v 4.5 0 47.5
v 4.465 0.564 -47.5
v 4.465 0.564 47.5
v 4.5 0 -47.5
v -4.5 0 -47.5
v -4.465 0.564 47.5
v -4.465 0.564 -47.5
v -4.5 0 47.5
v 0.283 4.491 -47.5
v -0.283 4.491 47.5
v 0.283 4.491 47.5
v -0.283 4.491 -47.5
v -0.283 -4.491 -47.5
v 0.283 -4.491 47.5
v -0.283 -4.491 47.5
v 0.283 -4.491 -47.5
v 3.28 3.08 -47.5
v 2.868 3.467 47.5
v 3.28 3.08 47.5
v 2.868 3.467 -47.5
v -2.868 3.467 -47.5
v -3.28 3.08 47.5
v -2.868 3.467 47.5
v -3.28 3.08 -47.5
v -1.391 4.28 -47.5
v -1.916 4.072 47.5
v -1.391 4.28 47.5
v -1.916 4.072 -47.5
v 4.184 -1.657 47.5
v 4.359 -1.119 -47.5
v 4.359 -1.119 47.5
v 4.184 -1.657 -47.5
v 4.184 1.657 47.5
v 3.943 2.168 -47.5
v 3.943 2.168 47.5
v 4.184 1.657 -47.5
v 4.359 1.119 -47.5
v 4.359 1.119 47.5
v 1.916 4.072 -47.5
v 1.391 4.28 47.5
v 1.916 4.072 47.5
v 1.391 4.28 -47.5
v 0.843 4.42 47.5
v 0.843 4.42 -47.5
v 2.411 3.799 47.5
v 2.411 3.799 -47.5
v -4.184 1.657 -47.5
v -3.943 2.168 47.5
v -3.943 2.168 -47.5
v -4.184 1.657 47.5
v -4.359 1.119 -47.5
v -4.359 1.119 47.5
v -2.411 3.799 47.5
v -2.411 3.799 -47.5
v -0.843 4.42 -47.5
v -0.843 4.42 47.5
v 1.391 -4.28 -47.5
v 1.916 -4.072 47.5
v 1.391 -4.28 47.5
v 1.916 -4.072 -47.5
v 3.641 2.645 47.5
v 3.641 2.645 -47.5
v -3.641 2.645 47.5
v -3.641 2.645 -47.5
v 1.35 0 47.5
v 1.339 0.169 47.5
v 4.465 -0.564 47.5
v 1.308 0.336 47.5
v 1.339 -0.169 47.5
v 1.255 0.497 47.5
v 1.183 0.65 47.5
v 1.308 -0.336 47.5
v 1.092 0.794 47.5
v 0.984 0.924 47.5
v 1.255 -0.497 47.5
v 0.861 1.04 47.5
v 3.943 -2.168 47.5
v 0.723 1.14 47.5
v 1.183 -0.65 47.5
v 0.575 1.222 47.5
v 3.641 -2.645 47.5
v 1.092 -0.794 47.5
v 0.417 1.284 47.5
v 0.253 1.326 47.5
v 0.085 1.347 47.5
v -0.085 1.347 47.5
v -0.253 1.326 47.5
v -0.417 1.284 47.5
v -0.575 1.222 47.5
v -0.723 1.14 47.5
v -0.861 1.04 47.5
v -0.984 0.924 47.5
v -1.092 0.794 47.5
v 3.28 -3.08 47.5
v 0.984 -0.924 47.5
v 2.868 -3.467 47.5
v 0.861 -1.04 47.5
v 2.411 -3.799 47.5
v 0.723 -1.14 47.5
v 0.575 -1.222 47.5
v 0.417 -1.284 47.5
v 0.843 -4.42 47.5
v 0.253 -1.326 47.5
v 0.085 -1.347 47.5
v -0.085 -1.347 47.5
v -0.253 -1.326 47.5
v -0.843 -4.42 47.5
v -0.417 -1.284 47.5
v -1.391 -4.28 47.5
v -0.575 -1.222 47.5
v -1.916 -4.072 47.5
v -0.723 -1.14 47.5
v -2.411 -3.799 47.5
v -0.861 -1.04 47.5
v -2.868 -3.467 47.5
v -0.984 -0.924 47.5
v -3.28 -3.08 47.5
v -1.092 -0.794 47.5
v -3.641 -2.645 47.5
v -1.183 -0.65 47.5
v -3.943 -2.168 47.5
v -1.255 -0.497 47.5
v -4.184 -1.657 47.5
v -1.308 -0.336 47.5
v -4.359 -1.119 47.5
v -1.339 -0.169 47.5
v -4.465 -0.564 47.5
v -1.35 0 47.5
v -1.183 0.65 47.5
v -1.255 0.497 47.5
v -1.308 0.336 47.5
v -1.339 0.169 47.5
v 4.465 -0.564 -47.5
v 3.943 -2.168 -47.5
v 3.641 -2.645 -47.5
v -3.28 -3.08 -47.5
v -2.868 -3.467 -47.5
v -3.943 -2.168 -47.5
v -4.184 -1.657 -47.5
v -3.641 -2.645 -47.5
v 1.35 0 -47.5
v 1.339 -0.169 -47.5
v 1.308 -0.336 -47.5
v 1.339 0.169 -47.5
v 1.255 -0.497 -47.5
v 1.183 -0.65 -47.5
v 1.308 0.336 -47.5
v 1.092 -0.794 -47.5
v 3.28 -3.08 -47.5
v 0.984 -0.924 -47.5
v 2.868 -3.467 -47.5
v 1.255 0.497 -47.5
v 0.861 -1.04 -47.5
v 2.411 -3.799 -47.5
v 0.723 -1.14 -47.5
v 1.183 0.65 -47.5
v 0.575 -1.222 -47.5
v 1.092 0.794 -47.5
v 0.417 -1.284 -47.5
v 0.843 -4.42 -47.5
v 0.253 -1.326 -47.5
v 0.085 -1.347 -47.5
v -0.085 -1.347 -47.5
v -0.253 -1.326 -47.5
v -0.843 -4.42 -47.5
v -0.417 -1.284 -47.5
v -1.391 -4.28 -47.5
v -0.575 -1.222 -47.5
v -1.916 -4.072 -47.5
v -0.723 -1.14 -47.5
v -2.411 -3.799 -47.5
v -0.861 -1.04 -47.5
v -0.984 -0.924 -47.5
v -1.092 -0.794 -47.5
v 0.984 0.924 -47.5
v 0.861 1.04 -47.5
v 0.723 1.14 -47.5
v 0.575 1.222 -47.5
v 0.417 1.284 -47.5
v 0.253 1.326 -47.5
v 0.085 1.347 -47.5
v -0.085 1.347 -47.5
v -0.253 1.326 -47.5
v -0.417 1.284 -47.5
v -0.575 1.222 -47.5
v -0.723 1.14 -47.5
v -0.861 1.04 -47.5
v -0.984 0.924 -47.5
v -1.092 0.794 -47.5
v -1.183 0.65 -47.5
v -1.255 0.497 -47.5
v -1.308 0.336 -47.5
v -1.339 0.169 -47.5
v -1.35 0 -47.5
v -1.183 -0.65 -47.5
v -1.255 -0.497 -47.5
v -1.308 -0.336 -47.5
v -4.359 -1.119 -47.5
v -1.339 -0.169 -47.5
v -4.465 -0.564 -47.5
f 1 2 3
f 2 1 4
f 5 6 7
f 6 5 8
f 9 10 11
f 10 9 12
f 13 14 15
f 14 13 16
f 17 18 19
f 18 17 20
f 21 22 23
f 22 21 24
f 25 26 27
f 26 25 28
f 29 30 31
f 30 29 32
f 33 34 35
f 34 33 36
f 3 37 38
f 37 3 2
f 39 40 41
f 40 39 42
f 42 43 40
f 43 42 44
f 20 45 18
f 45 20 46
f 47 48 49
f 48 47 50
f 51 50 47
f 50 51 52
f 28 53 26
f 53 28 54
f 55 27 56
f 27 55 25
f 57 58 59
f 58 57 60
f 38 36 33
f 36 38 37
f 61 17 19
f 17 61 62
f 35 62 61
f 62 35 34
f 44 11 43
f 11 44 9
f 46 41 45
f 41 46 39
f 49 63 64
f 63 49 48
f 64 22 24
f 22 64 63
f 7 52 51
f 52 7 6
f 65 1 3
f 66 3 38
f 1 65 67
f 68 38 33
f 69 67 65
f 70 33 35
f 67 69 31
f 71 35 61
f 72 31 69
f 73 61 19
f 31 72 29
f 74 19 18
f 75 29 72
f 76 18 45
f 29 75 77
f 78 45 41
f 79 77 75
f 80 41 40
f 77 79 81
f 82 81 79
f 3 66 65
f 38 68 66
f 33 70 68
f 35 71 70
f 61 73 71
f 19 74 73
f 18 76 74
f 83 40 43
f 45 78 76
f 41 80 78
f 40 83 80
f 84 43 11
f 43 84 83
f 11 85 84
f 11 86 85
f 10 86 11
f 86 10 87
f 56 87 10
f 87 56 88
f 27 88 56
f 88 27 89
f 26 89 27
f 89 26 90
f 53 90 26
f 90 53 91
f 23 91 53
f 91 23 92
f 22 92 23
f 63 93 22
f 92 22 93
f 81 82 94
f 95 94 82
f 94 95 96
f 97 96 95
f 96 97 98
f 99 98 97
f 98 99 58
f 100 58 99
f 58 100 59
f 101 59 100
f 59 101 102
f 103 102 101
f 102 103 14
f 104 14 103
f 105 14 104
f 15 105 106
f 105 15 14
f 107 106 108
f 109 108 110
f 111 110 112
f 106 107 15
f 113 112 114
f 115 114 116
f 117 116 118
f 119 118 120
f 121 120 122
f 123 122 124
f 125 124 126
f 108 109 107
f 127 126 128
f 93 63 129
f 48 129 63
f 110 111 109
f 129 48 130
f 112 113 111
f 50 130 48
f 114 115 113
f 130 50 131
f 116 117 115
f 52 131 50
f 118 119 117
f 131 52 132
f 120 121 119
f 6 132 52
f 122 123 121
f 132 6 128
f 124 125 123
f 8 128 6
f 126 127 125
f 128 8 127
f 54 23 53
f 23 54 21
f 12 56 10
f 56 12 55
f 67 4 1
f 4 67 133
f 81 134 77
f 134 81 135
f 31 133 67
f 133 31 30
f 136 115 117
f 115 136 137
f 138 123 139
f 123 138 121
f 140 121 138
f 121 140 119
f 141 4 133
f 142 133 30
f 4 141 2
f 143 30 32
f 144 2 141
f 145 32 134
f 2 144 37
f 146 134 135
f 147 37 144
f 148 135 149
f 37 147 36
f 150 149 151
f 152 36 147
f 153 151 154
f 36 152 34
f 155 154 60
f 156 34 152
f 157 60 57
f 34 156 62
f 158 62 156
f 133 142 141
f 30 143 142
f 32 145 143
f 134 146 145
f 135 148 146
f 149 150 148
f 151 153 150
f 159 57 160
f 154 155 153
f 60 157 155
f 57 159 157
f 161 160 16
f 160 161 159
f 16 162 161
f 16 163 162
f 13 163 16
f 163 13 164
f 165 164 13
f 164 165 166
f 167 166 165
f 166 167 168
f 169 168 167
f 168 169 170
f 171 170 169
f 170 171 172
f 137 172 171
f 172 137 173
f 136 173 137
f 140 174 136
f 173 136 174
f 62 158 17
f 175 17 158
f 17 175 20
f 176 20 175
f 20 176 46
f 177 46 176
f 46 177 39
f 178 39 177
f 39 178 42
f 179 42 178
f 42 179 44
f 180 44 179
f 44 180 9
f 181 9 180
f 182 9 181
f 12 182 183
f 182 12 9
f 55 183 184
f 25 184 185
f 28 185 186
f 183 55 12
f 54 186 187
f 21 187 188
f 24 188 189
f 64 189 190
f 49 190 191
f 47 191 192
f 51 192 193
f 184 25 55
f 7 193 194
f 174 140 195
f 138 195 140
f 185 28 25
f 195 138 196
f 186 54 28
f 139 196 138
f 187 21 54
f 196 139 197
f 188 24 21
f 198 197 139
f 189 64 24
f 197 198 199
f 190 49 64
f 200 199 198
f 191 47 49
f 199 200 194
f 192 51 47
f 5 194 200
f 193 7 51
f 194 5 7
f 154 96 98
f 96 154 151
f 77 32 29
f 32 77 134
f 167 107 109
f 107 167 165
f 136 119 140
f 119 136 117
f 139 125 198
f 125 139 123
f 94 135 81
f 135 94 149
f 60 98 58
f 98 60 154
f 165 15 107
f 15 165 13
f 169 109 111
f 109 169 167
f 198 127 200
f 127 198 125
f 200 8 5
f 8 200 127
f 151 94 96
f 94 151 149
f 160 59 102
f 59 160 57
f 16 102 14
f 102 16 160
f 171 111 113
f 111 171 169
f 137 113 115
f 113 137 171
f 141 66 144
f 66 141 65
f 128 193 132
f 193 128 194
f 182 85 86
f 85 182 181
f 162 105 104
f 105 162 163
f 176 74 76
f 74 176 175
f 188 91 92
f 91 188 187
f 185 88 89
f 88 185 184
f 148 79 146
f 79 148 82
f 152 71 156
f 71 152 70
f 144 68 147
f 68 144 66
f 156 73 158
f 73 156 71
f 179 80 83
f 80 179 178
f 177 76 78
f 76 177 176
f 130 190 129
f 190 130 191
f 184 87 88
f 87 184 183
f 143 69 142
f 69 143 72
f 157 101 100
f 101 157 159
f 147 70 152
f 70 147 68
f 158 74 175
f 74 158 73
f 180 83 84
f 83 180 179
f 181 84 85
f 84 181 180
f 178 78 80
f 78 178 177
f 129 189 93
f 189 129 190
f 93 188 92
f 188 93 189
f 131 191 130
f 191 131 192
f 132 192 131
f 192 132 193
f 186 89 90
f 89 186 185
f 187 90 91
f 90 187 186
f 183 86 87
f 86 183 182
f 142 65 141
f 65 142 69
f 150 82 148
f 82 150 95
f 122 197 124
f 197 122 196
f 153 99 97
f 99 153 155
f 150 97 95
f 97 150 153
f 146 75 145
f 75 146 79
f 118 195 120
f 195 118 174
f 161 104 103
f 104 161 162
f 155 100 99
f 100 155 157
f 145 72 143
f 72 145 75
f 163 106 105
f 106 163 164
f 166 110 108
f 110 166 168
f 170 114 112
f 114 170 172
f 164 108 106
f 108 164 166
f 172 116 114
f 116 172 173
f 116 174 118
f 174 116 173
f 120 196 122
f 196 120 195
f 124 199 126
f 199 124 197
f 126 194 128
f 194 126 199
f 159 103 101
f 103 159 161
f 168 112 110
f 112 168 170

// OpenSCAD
$fn = 50;


difference() {
	union() {
		translate(v = [0, 0, -47.5000000000]) {
			cylinder(h = 95, r = 4.5000000000);
		}
	}
	union() {
		translate(v = [0, 0, -100.0000000000]) {
			cylinder(h = 200, r = 1.3500000000);
		}
	}
}
